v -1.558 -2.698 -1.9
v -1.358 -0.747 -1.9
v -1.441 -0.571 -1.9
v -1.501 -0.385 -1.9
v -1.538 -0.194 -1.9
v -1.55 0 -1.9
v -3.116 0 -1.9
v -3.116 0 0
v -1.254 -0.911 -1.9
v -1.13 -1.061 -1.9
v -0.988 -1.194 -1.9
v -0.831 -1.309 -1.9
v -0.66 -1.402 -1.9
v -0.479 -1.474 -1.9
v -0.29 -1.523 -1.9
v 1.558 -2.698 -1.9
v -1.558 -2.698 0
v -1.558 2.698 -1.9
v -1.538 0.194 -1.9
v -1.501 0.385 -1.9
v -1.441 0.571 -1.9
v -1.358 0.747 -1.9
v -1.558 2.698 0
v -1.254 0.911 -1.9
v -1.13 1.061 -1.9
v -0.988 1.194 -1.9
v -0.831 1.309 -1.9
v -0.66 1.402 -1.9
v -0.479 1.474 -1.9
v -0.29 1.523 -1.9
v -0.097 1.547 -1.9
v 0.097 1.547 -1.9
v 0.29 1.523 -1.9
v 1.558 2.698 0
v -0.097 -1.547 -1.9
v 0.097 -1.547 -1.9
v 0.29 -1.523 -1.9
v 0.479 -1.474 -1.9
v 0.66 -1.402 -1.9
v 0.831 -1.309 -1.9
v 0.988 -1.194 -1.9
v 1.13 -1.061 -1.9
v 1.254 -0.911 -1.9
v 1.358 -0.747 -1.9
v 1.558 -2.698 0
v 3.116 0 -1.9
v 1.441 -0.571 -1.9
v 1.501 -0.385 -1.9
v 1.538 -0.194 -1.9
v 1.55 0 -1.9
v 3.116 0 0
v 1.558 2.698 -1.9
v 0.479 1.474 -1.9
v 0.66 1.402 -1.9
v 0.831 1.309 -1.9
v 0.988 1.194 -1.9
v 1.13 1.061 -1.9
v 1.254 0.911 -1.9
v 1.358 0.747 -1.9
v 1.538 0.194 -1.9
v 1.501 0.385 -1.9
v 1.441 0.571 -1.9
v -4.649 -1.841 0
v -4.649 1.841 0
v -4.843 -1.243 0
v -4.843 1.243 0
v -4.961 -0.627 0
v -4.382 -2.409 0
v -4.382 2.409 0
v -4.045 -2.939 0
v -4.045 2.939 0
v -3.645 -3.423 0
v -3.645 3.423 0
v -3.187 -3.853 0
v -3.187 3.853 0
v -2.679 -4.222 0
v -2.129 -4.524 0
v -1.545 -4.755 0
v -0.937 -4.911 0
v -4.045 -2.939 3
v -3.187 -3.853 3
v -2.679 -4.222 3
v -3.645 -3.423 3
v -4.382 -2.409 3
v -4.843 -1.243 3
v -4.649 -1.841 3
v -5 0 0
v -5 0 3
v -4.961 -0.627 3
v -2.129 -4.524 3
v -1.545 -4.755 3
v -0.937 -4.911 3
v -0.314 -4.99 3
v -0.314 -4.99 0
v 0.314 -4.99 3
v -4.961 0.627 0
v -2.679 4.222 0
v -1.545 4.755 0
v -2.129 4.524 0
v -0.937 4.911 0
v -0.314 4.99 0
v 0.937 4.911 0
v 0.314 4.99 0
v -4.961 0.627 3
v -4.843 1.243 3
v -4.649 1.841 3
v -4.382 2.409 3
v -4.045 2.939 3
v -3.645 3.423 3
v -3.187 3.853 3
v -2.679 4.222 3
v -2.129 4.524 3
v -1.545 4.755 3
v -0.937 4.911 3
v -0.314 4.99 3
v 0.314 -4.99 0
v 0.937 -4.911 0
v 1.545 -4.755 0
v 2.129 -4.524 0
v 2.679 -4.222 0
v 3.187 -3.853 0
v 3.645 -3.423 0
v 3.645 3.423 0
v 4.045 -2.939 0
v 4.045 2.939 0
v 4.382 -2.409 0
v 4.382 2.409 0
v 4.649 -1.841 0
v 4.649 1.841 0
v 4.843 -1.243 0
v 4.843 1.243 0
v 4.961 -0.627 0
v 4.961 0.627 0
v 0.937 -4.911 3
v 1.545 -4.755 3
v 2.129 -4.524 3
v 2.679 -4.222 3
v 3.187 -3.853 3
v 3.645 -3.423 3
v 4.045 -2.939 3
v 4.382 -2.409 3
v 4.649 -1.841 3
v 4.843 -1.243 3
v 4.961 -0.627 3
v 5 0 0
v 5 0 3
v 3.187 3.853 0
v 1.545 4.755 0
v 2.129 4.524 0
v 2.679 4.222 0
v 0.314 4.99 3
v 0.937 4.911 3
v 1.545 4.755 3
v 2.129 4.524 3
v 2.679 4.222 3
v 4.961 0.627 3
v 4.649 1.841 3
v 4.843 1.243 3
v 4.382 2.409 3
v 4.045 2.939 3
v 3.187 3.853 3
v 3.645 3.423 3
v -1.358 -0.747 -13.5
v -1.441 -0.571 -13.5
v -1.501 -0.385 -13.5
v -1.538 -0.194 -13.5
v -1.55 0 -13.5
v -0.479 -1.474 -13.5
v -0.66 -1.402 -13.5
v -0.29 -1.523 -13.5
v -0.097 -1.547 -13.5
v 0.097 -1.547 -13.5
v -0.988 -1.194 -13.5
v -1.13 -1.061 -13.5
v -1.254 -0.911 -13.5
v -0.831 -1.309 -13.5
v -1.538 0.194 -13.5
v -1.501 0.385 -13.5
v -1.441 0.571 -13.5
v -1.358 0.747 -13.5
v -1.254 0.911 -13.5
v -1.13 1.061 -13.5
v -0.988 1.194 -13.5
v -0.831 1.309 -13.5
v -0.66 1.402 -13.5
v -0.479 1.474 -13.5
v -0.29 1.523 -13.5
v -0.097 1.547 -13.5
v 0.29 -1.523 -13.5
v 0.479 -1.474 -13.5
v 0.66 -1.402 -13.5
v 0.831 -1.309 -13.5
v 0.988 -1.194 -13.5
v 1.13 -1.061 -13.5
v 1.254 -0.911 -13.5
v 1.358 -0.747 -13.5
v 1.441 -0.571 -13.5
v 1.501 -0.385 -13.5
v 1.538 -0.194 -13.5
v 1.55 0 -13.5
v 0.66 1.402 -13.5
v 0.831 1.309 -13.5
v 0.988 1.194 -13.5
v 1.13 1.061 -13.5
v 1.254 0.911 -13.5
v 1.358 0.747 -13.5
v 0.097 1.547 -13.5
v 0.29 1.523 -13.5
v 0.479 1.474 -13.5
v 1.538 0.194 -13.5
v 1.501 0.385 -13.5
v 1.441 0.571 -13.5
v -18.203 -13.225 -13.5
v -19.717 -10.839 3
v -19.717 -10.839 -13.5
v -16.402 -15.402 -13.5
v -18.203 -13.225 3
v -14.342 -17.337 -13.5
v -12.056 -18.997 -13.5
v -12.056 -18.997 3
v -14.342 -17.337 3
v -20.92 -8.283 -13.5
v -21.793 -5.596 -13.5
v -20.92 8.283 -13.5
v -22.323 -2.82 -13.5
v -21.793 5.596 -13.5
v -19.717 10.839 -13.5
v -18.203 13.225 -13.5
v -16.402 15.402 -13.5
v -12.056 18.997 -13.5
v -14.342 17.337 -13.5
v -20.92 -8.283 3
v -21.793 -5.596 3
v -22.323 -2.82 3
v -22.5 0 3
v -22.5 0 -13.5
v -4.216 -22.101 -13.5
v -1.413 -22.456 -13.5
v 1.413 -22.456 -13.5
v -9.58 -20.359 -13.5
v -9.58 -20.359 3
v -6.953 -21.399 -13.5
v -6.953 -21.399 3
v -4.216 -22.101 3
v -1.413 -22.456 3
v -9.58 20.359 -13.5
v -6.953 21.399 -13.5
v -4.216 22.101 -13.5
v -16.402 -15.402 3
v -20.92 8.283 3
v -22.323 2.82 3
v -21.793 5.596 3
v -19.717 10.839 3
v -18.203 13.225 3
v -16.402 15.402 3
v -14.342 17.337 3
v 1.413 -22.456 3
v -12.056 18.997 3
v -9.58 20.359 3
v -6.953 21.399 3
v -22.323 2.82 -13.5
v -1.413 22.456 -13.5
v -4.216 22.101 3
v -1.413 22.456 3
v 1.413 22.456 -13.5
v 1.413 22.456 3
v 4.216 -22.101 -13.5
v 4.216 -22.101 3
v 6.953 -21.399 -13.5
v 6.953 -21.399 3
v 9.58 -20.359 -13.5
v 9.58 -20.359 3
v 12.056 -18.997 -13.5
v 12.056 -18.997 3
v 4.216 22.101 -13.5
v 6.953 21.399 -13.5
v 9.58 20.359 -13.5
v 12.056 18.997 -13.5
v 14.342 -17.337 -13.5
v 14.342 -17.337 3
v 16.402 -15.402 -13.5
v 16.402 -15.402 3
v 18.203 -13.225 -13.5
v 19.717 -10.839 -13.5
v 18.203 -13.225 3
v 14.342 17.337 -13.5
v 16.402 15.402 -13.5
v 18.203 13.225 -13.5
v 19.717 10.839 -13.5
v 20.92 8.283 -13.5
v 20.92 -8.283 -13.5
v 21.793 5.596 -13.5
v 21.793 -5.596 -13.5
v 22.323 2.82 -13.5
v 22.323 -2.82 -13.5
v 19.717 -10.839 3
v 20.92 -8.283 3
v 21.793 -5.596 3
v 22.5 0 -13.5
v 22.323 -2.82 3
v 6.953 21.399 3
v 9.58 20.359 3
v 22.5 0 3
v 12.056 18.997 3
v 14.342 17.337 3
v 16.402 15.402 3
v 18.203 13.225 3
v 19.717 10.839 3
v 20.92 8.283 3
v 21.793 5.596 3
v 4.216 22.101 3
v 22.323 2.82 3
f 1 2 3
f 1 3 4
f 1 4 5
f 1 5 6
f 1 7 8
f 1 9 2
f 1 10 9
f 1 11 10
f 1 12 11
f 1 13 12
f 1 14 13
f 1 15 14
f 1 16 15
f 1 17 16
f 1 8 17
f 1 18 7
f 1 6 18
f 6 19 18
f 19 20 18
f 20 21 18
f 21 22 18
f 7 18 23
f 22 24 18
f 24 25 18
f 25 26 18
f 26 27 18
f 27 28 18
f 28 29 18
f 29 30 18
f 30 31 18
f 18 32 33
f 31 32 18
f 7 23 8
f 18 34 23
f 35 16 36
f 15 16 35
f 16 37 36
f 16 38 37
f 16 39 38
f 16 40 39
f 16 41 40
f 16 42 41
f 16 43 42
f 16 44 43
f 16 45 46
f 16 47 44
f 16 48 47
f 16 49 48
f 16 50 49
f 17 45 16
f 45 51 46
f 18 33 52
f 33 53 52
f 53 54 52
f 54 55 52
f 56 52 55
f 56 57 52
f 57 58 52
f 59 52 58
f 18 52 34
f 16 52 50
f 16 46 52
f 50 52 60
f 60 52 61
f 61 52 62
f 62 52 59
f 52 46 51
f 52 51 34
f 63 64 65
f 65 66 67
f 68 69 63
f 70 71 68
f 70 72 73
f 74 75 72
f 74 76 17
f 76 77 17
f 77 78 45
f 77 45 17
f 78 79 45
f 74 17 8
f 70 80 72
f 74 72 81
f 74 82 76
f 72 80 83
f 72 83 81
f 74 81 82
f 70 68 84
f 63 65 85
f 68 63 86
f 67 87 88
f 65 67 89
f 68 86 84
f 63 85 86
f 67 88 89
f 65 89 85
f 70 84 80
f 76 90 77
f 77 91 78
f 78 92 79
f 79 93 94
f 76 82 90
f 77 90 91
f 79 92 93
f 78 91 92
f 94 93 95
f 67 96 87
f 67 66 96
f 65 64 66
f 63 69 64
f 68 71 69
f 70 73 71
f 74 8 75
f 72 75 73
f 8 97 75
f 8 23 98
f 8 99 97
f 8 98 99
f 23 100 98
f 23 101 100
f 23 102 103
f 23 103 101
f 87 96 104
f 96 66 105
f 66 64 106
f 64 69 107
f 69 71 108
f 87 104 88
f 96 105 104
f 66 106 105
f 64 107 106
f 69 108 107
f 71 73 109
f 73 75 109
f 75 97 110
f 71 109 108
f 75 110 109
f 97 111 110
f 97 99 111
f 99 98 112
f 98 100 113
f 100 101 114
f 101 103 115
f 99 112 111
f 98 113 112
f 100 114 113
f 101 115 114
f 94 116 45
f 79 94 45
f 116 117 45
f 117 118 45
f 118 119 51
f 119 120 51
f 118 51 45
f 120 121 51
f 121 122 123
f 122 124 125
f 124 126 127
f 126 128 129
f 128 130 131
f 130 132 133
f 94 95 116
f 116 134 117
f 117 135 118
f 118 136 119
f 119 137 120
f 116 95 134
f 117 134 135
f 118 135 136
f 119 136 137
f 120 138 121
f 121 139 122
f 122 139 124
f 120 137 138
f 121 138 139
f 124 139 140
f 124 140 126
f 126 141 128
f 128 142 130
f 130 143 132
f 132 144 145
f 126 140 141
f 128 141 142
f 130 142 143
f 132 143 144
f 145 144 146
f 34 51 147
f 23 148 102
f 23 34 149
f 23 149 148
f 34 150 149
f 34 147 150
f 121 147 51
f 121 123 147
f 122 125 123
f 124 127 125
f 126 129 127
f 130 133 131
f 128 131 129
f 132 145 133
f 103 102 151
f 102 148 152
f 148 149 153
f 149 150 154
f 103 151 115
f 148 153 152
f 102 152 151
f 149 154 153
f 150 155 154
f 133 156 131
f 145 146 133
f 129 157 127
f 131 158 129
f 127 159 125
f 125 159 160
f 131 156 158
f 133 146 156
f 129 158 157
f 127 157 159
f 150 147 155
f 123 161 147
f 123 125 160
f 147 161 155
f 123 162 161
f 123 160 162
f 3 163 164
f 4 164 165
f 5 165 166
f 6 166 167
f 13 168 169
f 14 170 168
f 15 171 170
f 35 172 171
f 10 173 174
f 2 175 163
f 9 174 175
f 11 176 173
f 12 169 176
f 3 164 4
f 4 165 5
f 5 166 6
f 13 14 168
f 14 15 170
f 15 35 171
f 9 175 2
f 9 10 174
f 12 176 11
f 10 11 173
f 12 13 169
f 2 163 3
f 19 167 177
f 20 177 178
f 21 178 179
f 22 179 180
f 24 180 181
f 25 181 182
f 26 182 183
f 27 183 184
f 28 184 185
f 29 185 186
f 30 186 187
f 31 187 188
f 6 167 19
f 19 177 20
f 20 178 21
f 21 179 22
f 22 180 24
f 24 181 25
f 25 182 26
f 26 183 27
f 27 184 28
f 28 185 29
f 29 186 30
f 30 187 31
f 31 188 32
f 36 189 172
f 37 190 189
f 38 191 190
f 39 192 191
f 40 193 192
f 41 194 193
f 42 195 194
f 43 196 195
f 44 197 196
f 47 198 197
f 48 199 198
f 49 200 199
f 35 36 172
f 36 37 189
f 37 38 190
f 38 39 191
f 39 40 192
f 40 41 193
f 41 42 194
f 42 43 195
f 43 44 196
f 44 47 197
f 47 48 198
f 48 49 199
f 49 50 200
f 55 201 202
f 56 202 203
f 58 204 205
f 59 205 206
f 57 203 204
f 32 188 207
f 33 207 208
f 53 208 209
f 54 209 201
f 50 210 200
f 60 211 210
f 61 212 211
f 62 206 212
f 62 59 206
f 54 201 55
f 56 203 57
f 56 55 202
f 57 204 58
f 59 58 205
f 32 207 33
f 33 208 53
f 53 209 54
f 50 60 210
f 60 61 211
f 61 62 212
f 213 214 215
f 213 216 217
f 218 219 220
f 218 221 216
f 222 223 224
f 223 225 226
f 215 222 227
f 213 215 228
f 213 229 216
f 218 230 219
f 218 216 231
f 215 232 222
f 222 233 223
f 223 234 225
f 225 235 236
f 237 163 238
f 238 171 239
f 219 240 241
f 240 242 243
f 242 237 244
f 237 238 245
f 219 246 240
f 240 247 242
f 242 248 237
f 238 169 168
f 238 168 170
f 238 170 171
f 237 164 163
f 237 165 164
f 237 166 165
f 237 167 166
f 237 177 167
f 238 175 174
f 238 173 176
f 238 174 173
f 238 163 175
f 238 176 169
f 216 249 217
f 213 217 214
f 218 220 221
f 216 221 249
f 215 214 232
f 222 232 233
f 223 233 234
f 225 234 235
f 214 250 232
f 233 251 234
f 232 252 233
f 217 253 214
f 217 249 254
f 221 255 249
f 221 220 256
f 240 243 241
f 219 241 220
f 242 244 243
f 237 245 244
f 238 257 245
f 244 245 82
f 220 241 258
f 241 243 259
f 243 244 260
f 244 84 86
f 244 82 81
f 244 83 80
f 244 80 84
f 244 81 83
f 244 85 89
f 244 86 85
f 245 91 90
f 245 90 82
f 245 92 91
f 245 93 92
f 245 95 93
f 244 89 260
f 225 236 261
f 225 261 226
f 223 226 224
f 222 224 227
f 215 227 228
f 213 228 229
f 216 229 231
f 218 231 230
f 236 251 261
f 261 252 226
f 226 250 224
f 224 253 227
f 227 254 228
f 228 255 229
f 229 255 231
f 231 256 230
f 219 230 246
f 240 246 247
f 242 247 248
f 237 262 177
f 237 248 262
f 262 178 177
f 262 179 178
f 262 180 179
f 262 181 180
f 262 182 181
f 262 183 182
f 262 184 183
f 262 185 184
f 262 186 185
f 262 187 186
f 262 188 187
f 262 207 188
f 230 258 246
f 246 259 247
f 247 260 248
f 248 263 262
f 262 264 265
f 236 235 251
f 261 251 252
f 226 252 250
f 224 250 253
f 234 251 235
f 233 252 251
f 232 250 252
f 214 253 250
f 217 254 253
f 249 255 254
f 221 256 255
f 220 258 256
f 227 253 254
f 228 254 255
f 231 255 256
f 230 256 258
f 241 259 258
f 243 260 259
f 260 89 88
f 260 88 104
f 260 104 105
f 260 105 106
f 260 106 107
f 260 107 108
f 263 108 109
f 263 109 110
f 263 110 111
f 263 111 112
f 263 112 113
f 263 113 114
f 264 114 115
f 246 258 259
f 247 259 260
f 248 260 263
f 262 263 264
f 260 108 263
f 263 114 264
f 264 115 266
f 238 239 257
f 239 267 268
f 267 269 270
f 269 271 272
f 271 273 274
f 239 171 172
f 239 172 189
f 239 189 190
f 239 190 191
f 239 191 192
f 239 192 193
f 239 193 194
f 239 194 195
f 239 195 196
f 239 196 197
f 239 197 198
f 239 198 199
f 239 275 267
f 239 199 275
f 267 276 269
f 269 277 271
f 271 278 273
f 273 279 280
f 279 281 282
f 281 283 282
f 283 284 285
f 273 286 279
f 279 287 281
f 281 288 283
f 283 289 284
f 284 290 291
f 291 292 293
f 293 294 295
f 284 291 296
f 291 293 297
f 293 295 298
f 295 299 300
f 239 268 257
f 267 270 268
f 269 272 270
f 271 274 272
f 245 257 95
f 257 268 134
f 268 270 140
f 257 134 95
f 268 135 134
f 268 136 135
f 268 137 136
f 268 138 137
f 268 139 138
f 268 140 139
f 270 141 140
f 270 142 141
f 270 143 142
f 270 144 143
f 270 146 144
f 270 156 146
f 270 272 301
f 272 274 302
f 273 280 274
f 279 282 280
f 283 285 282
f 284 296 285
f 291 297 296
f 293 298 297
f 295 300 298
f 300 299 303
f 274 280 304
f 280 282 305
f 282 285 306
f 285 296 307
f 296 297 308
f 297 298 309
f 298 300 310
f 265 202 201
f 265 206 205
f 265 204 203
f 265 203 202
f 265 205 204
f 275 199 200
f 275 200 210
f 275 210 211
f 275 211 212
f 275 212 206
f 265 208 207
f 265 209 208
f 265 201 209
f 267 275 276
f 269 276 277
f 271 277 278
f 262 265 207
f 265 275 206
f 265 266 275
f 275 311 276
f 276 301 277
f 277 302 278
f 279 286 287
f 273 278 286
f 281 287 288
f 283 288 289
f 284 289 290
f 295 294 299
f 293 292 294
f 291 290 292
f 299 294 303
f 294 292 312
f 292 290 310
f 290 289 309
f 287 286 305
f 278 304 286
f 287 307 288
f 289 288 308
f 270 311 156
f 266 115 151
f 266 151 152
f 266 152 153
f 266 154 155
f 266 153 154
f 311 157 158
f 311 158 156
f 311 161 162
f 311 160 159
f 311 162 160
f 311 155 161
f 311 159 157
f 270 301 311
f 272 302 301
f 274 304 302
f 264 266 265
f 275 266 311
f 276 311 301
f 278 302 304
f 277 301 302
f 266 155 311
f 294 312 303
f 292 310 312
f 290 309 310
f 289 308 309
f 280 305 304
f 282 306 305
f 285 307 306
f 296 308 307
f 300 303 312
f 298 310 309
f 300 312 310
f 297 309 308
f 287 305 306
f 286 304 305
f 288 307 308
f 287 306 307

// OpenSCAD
$fn = 50;

difference() {
	union() {
		translate(v = [0, 0, -13.5]) {
			cylinder(h = 16.5, r = 22.5);
		}
	}
	union() {
		translate(v = [0, 0, 0]) {
			rotate(a = [0, 0, 0]) {
				difference() {
					union() {
						translate(v = [0, 0, -1.9]) {
							linear_extrude(height = 1.9) {
								polygon(points = [[3.1158, 0.0], [1.5579000000000005, 2.698361953111554], [-1.5578999999999994, 2.6983619531115544], [-3.1158, 3.815754496783323e-16], [-1.5579000000000014, -2.6983619531115535], [1.557899999999998, -2.6983619531115552]]);
							}
						}
					}
					union();
				}
			}
		}
		#cylinder(h = 3, r = 5.0);
		#translate(v = [0, 0, -100.0]) {
			cylinder(h = 200, r = 1.55);
		}
	}
}
